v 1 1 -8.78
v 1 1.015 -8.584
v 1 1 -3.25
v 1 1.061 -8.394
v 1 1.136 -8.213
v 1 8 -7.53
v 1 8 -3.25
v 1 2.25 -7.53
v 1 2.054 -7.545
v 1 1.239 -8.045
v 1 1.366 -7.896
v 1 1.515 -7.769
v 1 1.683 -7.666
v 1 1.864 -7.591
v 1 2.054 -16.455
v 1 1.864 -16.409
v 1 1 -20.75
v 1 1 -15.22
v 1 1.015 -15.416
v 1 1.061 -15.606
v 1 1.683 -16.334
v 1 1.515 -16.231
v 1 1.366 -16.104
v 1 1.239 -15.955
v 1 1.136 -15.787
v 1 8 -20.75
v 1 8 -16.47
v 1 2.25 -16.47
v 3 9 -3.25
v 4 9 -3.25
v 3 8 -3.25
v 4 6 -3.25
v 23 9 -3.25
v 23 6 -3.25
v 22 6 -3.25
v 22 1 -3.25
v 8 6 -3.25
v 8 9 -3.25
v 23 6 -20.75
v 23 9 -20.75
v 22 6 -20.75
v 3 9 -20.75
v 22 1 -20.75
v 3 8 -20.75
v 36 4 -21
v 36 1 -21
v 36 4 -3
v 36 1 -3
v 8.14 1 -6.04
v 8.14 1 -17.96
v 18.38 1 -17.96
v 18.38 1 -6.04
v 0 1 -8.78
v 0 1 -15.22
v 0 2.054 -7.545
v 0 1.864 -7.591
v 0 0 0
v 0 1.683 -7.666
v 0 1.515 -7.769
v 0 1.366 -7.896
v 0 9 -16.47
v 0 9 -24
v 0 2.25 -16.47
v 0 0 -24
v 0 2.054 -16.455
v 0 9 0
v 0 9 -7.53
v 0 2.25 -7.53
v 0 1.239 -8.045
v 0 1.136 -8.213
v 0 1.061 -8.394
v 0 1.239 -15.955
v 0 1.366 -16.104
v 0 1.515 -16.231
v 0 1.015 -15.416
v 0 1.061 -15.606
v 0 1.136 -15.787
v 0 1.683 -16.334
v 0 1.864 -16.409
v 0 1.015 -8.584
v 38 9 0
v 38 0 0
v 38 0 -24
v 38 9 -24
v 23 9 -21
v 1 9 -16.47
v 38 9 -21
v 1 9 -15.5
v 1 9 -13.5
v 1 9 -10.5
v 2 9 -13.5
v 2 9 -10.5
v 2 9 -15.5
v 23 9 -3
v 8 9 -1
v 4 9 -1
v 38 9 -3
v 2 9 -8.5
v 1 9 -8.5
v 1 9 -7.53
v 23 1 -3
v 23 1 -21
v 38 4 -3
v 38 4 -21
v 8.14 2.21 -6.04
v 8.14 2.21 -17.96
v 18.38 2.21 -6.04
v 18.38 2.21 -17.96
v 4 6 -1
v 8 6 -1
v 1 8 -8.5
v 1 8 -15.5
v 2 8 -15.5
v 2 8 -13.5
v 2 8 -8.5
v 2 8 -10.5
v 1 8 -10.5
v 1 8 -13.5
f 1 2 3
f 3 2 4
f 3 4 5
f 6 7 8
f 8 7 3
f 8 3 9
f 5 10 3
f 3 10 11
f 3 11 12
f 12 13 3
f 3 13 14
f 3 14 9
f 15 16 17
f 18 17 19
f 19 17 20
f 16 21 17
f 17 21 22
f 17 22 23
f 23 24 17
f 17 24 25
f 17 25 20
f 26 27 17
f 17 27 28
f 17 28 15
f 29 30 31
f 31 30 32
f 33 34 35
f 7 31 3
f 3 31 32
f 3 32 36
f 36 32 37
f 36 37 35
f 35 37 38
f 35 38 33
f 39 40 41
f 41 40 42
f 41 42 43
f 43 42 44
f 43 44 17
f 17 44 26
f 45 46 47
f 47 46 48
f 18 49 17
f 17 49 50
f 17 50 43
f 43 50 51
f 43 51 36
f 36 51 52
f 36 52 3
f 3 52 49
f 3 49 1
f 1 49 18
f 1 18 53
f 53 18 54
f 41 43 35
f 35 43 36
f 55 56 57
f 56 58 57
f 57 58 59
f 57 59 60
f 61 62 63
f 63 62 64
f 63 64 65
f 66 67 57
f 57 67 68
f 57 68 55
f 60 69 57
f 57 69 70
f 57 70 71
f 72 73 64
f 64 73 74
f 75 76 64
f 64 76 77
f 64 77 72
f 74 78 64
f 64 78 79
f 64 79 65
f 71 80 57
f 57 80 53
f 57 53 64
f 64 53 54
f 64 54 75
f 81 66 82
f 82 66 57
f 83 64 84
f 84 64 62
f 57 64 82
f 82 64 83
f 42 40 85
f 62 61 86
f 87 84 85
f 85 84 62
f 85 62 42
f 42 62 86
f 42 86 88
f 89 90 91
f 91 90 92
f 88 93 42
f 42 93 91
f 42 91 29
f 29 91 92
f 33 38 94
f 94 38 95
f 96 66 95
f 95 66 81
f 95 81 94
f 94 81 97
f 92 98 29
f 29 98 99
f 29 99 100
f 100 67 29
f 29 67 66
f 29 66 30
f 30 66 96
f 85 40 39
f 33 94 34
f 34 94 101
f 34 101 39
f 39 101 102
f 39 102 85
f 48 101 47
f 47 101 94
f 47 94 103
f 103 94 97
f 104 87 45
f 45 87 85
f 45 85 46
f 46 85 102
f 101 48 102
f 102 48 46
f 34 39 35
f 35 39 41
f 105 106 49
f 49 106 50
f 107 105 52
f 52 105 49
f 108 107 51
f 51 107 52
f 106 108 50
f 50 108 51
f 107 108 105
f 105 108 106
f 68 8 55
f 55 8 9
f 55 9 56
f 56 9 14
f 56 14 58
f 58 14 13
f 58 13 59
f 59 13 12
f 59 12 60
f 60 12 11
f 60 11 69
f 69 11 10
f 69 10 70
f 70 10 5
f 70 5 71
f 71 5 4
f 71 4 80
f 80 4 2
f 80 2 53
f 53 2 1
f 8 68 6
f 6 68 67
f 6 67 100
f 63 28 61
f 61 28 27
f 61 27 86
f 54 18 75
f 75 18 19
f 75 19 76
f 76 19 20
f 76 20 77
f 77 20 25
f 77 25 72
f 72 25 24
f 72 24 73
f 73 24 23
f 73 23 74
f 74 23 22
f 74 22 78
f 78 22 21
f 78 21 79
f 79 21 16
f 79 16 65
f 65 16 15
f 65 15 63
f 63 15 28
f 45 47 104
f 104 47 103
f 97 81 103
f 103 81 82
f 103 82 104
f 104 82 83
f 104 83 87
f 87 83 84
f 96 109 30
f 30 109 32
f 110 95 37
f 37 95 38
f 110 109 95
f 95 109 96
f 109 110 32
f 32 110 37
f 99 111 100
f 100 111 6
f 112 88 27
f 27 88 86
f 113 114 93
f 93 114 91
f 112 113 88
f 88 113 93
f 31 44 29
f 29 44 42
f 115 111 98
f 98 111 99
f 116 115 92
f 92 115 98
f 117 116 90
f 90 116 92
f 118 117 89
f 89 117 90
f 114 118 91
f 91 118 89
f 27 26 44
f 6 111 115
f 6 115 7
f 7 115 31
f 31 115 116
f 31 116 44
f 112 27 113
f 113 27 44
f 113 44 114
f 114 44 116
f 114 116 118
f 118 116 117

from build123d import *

# Parameters (mm, degrees)
SKETCH1_W           = 40
SKETCH1_H           = 24
BOSS_EXTRUDE1_DEPTH = 1
SKETCH2_W           = 40
SKETCH2_H           = 24
SKETCH2_W_2         = 21
SKETCH2_H_2         = 17.5
SKETCH2_W_3         = 13
SKETCH2_H_3         = 18
BOSS_EXTRUDE3_DEPTH = 8
SKETCH3_W           = 1
SKETCH3_H           = 17.5
CUT_EXTRUDE2_DEPTH  = 3
SKETCH4_W           = 10.24
SKETCH4_H           = 11.92
BOSS_EXTRUDE4_DEPTH = 1.21
CUT_EXTRUDE3_DEPTH  = 2
SKETCH8_W           = 4
SKETCH8_H           = 18
CUT_EXTRUDE4_DEPTH  = 5
SKETCH11_W          = 24
SKETCH11_H          = 9
CUT_EXTRUDE5_DEPTH  = 2
SKETCH12_W          = 4
SKETCH12_H          = 3
CUT_EXTRUDE6_DEPTH  = 3
BOSS_EXTRUDE5_DEPTH = 1


with BuildPart() as part:
    # Sketch1 → Boss-Extrude1 (new body)
    with BuildSketch(Plane(origin=(0, 0, 0), x_dir=(1, 0, 0), z_dir=(0, 1, 0))):
        with Locations((20, 12)):
            Rectangle(SKETCH1_W, SKETCH1_H)
    extrude(amount=BOSS_EXTRUDE1_DEPTH)

    # Sketch2 → Boss-Extrude3 (add)
    with BuildSketch(Plane(origin=(0, 1, 0), x_dir=(1, 0, 0), z_dir=(0, 1, 0))):
        with Locations((20, 12)):
            Rectangle(SKETCH2_W, SKETCH2_H)
        with Locations((11.5, 12)):
            Rectangle(SKETCH2_W_2, SKETCH2_H_2, mode=Mode.SUBTRACT)
        with Locations((29.5, 12)):
            Rectangle(SKETCH2_W_3, SKETCH2_H_3, mode=Mode.SUBTRACT)
    extrude(amount=BOSS_EXTRUDE3_DEPTH)

    # Sketch3 → Cut-Extrude2 (cut)
    with BuildSketch(Plane(origin=(0, 9, 0), x_dir=(1, 0, 0), z_dir=(0, 1, 0))):
        with Locations((22.5, 12)):
            Rectangle(SKETCH3_W, SKETCH3_H)
    extrude(amount=-CUT_EXTRUDE2_DEPTH, mode=Mode.SUBTRACT)

    # Sketch4 → Boss-Extrude4 (add)
    with BuildSketch(Plane(origin=(0, 1, 0), x_dir=(1, 0, 0), z_dir=(0, 1, 0))):
        with Locations((13.26, 12)):
            Rectangle(SKETCH4_W, SKETCH4_H)
    extrude(amount=BOSS_EXTRUDE4_DEPTH)

    # Sketch5 → Cut-Extrude3 (cut)
    with BuildSketch(Plane(origin=(1, 0, 0), x_dir=(0, 0, -1), z_dir=(1, 0, 0))):
        with BuildLine():
            Line((7.53, 2.25), (7.53, 2.96))
            Line((7.53, 2.96), (7.53, 9))
            Line((7.53, 9), (16.47, 9))
            Line((16.47, 9), (16.47, 2.96))
            Line((16.47, 2.96), (16.47, 2.25))
            ThreePointArc((16.47, 2.25), (16.103883476, 1.366116524), (15.22, 1))
            Line((15.22, 1), (8.78, 1))
            ThreePointArc((8.78, 1), (7.896116524, 1.366116524), (7.53, 2.25))
        make_face()
    extrude(amount=-CUT_EXTRUDE3_DEPTH, mode=Mode.SUBTRACT)

    # Sketch8 → Cut-Extrude4 (cut)
    with BuildSketch(Plane(origin=(0, 9, 0), x_dir=(1, 0, 0), z_dir=(0, 1, 0))):
        with Locations((38, 12)):
            Rectangle(SKETCH8_W, SKETCH8_H)
    extrude(amount=-CUT_EXTRUDE4_DEPTH, mode=Mode.SUBTRACT)

    # Sketch11 → Cut-Extrude5 (cut)
    with BuildSketch(Plane(origin=(40, 0, 0), x_dir=(0, 0, -1), z_dir=(1, 0, 0))):
        with Locations((12, 4.5)):
            Rectangle(SKETCH11_W, SKETCH11_H)
    extrude(amount=-CUT_EXTRUDE5_DEPTH, mode=Mode.SUBTRACT)

    # Sketch12 → Cut-Extrude6 (cut)
    with BuildSketch(Plane(origin=(0, 9, 0), x_dir=(1, 0, 0), z_dir=(0, 1, 0))):
        with Locations((6, 2.5)):
            Rectangle(SKETCH12_W, SKETCH12_H)
    extrude(amount=-CUT_EXTRUDE6_DEPTH, mode=Mode.SUBTRACT)

    # Sketch13 → Boss-Extrude5 (add)
    with BuildSketch(Plane(origin=(0, 9, 0), x_dir=(1, 0, 0), z_dir=(0, 1, 0))):
        Polygon((1, 20.75), (3, 20.75), (3, 3.25), (1, 3.25), (1, 7.53), (1, 8.5), (2, 8.5), (2, 10.5), (1, 10.5), (1, 13.5), (2, 13.5), (2, 15.5), (1, 15.5), (1, 16.47), align=None)
    extrude(amount=-BOSS_EXTRUDE5_DEPTH)


solid = part.part
